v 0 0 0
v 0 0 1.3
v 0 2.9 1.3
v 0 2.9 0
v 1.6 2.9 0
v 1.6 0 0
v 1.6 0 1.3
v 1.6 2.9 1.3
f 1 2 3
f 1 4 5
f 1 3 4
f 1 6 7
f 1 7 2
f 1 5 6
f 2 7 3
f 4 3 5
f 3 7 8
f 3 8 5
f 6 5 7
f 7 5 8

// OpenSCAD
/* Warning, this is a very basic generator with a lot of approximation 
input data : [SOT-23, N6B, 1.6x2.9x1.3mm, 6, , A, C04-21333A]
generated by com.zoubworld.electronics.cad.model3d.Basic
Date : Sun Feb 15 10:50:49 CET 2026
*/

//body
color("black")
translate([0,0,0])
cube([1.6,2.9,1.3], center=false);
